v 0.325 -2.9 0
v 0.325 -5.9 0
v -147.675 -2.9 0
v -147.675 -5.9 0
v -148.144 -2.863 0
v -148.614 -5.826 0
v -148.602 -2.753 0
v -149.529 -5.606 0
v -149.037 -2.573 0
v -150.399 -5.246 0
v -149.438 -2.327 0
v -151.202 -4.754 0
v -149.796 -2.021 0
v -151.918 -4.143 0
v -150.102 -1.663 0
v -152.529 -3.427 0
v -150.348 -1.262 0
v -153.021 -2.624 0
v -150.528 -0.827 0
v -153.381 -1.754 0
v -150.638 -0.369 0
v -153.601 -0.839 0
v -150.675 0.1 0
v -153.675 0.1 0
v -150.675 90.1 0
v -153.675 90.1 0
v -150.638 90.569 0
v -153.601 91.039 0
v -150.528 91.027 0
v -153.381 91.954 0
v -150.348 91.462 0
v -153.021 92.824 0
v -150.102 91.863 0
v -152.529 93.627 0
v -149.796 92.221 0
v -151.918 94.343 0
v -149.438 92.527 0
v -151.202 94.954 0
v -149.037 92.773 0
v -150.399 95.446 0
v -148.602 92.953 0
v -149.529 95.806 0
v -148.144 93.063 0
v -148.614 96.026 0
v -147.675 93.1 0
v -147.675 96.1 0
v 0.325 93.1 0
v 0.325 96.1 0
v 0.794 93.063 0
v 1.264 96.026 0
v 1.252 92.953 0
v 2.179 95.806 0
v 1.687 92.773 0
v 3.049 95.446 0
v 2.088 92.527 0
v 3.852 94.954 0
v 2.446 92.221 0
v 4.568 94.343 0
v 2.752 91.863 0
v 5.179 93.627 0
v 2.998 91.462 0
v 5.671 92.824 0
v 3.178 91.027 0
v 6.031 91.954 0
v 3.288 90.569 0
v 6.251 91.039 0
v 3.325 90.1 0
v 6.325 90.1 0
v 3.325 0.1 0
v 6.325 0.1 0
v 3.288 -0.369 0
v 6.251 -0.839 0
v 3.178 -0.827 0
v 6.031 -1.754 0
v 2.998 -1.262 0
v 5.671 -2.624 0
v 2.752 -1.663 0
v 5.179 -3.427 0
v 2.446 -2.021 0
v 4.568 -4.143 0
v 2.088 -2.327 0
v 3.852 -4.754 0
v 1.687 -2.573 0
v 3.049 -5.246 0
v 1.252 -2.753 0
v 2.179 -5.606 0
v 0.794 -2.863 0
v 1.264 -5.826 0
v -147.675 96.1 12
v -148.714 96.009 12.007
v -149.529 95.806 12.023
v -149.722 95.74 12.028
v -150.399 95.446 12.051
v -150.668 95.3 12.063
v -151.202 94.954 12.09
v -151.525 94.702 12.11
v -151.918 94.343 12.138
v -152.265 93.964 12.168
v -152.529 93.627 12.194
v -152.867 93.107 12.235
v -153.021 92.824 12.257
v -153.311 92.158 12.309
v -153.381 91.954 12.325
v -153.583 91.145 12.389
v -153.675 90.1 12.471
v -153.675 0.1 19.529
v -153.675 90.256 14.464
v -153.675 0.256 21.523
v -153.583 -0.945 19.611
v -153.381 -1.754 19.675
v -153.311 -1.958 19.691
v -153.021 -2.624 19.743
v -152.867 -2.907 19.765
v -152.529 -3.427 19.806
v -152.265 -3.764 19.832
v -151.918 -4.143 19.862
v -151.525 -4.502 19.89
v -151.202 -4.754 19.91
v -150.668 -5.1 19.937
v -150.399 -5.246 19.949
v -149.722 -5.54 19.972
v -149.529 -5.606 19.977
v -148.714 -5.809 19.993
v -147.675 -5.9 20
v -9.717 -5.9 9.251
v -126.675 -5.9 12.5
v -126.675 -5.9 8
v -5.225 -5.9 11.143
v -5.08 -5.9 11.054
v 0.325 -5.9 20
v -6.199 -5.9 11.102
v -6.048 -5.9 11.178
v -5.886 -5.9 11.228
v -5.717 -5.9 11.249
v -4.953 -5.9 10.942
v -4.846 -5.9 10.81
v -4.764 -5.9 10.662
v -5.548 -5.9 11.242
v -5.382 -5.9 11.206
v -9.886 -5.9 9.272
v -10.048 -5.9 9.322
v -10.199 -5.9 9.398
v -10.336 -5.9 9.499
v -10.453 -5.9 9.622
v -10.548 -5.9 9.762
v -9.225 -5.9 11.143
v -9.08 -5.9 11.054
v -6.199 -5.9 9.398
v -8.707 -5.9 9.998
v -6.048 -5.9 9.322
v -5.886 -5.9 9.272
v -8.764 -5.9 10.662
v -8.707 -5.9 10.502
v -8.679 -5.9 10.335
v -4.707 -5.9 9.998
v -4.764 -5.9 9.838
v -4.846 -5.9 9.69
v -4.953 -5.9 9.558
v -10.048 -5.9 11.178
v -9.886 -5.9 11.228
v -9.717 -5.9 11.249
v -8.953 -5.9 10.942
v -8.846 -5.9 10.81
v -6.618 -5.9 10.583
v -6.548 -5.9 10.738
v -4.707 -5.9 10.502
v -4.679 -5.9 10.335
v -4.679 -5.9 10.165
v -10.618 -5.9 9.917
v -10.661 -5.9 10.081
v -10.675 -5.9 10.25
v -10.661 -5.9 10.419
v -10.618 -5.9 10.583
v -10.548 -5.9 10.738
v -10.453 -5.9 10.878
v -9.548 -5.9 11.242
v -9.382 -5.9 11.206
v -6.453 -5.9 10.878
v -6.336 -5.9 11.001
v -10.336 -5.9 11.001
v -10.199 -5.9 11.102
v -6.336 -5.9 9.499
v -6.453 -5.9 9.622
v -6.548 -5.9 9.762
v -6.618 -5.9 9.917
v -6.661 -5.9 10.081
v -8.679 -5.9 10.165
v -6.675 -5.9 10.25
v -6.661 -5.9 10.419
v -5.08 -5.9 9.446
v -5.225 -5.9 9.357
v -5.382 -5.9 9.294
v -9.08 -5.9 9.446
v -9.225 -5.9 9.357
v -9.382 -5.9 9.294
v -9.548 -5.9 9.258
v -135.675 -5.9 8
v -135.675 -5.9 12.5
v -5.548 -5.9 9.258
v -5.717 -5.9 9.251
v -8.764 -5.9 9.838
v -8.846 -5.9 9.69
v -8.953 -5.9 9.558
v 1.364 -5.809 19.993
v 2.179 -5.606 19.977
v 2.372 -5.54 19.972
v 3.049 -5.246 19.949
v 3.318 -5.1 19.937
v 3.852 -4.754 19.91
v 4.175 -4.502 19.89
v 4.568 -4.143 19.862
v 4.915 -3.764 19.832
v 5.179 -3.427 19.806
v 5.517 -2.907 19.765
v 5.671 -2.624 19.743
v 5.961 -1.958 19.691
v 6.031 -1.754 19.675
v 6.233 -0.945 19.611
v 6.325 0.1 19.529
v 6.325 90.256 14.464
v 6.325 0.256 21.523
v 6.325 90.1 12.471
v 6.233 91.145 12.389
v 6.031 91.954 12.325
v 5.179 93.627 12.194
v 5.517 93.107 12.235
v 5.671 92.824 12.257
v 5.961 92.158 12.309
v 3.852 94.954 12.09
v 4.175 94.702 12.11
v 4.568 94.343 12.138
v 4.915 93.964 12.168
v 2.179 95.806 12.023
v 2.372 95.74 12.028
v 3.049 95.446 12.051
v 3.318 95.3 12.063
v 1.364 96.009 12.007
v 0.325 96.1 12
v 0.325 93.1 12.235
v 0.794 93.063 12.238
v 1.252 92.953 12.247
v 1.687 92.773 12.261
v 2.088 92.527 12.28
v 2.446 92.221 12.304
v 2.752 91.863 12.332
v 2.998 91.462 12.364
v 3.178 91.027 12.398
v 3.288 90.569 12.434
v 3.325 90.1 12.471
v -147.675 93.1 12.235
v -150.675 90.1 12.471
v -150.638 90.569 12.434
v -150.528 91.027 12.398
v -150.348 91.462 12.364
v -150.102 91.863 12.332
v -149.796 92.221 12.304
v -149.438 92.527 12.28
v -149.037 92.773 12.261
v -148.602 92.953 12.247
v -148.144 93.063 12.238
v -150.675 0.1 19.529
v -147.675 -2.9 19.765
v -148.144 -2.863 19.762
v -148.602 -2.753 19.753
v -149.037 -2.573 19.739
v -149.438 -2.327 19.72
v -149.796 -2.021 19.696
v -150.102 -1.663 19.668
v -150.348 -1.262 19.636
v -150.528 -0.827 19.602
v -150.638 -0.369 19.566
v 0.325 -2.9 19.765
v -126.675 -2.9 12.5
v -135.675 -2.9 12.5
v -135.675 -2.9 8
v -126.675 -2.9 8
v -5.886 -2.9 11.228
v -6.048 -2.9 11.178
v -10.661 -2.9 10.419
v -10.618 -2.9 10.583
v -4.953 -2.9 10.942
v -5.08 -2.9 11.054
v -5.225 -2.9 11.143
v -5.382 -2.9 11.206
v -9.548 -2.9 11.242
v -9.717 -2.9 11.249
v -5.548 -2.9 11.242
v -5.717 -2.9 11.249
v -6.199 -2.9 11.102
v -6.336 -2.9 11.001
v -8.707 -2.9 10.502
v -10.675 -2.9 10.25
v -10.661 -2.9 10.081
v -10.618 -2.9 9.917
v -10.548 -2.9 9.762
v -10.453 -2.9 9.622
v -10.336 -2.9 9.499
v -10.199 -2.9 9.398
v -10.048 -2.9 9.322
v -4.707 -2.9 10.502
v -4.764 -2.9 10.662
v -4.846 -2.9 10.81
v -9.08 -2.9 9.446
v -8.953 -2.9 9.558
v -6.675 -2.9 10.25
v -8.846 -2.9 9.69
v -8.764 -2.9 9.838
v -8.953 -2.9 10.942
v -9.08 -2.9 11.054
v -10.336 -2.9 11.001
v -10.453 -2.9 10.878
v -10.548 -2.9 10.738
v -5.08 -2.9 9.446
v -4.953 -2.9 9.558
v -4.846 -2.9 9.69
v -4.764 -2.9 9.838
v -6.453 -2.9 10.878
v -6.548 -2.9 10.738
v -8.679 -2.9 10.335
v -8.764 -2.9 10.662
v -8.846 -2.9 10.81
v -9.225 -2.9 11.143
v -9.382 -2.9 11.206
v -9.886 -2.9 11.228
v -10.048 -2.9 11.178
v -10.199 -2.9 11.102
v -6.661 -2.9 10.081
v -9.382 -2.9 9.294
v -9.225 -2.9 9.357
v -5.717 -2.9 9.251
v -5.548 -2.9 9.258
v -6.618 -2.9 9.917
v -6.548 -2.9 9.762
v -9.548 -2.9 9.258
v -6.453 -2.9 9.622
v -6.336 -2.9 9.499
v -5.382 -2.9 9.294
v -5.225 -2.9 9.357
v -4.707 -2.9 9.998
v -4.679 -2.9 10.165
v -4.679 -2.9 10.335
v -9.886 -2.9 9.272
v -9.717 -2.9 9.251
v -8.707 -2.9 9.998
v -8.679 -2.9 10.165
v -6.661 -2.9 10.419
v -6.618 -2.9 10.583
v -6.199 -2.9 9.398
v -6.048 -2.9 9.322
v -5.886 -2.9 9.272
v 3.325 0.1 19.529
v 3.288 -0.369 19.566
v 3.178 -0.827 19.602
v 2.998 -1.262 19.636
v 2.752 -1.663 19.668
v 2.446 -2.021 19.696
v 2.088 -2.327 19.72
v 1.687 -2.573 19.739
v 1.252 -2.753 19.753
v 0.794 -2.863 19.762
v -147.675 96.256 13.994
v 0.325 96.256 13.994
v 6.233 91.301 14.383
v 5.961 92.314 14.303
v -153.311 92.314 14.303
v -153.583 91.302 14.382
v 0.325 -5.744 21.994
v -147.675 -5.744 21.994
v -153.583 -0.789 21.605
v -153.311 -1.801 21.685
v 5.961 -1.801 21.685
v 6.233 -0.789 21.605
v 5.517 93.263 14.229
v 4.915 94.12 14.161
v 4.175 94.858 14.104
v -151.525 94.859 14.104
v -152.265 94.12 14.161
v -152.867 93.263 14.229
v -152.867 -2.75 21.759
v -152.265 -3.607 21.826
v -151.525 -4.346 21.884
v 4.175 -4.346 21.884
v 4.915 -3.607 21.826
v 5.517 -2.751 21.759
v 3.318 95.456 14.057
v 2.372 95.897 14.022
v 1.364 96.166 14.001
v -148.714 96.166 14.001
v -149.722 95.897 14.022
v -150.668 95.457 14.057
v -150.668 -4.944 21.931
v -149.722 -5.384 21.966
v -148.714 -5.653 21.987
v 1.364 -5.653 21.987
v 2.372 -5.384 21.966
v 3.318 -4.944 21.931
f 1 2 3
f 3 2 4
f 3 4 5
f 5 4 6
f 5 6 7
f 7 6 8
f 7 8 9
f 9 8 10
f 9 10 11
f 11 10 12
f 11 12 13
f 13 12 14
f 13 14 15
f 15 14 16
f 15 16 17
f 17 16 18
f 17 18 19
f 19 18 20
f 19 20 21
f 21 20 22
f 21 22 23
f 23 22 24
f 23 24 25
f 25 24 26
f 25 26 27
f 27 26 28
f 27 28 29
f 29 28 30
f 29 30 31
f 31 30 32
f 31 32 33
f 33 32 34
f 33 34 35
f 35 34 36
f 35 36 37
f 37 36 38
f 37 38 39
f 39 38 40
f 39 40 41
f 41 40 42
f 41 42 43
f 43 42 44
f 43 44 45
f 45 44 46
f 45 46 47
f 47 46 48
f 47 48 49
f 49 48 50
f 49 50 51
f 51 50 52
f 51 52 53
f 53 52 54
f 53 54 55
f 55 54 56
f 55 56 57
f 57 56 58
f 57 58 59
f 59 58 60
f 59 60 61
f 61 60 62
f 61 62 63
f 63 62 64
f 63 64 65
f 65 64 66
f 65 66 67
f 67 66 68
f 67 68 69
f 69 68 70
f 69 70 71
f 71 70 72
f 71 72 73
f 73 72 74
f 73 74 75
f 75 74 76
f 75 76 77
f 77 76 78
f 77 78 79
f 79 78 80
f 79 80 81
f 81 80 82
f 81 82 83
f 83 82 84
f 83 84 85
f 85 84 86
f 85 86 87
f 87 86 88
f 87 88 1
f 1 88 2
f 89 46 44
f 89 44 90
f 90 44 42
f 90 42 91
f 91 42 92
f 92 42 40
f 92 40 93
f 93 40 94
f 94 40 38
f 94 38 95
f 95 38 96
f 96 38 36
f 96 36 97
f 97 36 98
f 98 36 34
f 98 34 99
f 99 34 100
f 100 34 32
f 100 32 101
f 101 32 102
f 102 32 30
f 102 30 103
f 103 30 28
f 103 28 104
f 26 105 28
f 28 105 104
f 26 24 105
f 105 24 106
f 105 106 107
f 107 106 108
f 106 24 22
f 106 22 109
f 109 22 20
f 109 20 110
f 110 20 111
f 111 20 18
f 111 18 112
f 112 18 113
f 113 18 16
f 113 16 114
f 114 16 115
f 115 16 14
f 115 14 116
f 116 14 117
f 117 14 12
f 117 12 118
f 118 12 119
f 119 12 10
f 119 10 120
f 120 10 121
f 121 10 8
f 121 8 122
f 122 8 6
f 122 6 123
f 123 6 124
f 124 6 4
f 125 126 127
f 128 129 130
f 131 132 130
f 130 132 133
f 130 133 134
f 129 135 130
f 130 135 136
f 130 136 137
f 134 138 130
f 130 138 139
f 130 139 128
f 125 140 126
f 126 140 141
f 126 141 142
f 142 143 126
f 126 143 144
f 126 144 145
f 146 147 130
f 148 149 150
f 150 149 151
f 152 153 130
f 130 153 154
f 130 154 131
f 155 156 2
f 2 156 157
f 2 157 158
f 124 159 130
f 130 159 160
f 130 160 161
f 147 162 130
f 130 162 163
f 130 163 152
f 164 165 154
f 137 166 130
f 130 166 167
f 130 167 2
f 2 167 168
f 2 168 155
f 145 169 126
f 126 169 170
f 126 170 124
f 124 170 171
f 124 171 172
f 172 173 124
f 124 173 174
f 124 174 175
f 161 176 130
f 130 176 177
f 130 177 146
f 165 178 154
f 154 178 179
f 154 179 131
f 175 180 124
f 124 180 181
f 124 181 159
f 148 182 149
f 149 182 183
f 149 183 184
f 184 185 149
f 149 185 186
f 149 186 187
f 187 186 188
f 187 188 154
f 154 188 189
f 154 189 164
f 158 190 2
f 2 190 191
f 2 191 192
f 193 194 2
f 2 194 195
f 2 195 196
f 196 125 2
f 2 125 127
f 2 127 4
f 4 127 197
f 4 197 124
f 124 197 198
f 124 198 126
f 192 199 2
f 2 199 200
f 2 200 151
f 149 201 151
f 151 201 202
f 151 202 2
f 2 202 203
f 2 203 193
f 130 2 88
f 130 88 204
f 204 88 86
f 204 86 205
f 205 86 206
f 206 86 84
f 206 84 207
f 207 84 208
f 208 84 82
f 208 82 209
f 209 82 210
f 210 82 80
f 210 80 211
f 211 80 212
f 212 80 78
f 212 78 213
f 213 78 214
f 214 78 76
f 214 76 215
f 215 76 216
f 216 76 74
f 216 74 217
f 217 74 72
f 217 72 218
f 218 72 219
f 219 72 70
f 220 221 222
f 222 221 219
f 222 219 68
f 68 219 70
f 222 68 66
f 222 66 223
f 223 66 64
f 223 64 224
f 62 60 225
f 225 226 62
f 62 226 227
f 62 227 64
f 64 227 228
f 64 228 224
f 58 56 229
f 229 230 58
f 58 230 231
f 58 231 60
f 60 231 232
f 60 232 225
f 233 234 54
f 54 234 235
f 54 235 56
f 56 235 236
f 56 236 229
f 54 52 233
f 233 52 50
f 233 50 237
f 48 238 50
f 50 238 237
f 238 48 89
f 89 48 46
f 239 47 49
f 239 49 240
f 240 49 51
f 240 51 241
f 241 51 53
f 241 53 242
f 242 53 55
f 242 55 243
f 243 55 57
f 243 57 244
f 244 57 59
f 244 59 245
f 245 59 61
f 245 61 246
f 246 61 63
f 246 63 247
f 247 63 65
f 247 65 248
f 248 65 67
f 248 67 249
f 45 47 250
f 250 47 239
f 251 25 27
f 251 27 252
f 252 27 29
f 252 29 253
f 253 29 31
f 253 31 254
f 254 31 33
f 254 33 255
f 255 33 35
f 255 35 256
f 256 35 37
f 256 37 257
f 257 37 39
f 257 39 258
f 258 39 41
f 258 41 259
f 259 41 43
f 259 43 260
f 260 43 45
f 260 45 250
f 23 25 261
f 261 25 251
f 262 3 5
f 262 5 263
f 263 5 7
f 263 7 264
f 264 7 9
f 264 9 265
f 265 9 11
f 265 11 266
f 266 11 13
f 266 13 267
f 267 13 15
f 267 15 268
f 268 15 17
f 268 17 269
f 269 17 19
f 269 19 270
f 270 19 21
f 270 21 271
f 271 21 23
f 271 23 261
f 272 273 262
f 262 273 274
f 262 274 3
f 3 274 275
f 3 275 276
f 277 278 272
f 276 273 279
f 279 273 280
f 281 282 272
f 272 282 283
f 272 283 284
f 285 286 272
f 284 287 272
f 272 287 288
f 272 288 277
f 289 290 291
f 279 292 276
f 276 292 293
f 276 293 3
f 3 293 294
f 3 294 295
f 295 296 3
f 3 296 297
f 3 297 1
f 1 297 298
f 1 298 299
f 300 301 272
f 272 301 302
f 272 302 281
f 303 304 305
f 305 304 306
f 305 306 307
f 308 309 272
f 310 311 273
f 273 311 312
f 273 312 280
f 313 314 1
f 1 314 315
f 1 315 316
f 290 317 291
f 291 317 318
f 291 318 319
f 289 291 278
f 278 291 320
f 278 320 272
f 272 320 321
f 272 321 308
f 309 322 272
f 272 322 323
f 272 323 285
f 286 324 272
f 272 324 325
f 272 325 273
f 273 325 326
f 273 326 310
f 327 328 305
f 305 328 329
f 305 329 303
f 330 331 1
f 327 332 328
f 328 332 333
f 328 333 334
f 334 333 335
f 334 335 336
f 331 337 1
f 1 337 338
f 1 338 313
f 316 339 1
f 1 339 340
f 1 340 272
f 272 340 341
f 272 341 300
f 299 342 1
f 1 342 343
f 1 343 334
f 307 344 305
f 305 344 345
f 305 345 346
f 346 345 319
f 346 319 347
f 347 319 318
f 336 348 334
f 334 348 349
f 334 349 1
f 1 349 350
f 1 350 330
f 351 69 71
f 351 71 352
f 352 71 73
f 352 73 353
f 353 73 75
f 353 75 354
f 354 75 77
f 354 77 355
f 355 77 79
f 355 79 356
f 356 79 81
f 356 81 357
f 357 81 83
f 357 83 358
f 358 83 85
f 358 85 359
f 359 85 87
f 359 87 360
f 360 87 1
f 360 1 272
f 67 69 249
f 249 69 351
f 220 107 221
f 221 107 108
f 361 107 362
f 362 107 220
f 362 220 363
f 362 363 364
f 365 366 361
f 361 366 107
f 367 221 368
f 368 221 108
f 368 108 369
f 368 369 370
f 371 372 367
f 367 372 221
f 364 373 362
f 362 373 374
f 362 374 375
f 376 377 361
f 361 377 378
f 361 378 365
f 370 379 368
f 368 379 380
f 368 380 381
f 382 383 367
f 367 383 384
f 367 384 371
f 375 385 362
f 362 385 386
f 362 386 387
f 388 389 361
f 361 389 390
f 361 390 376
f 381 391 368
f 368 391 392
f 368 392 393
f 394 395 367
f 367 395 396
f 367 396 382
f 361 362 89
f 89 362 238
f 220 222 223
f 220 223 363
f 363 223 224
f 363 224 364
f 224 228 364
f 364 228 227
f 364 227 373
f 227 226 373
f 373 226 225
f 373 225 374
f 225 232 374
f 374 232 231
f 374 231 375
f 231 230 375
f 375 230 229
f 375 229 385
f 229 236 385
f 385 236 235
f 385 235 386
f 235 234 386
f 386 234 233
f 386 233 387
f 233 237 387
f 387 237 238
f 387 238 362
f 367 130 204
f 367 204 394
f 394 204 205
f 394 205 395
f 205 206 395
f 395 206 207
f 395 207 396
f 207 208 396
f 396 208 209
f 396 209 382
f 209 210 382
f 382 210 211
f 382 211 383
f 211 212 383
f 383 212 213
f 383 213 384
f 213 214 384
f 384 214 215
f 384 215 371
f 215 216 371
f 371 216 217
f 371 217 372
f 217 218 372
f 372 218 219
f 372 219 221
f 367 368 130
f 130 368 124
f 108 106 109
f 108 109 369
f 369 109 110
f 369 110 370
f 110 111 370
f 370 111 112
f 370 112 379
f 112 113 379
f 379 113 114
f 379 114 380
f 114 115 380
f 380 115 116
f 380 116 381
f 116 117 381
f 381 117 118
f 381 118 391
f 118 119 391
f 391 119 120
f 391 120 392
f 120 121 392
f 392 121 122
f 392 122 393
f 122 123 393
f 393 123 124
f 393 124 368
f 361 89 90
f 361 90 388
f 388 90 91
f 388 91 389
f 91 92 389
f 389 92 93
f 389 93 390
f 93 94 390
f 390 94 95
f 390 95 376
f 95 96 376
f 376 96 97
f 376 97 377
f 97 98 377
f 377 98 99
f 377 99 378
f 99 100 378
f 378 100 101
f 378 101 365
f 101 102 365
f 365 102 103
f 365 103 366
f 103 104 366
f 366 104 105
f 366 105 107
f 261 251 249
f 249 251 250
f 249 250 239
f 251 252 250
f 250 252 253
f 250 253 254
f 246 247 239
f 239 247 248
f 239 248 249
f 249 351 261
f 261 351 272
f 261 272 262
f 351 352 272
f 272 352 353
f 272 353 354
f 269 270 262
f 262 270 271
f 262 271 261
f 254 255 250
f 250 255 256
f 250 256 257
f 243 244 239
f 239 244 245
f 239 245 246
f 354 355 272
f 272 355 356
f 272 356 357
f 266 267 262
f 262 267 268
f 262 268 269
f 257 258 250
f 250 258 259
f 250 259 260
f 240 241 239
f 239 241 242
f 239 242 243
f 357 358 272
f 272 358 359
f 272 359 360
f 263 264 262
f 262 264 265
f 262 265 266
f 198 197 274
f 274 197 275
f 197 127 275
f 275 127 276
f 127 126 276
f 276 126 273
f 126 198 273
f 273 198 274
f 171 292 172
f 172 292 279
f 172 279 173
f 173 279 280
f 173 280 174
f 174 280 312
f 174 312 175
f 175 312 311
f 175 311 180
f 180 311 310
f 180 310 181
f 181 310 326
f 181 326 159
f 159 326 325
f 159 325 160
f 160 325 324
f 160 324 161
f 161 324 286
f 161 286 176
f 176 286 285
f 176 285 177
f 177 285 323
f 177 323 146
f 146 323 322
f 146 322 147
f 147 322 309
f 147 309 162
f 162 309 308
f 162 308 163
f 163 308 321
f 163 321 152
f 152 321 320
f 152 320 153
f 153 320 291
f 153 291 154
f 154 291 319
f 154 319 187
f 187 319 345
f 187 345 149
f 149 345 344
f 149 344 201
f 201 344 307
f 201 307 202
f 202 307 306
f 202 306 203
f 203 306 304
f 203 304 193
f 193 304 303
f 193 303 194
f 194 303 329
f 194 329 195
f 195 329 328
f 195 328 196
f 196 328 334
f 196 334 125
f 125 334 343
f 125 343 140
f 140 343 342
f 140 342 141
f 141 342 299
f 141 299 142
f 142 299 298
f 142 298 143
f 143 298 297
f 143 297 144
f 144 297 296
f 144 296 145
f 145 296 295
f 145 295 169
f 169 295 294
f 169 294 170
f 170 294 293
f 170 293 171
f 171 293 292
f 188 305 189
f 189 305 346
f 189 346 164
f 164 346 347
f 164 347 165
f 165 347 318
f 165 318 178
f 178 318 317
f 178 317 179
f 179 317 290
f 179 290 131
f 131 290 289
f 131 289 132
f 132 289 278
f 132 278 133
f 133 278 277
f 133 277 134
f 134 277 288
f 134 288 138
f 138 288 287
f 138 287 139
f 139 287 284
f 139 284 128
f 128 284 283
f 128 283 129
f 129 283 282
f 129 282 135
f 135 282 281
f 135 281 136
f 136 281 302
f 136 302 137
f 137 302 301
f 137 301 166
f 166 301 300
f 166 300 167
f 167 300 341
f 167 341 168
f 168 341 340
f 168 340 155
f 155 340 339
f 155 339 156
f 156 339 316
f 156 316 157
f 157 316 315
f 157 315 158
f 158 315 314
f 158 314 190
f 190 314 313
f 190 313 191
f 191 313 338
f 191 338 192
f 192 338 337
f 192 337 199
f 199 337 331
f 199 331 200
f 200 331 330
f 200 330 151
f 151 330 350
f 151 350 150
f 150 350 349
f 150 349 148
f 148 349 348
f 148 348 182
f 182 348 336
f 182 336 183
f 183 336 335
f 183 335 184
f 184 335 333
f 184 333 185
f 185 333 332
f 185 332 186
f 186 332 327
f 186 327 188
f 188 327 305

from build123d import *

# Parameters (mm, degrees)
BOSS_EXTRUDE1_DEPTH = 20
CUT_EXTRUDE1_DEPTH  = 188.710441905
BOSS_EXTRUDE2_DEPTH = 2
SKETCH4_W           = 9
SKETCH4_H           = 4.5
CUT_EXTRUDE2_DEPTH  = 185.20565812
SKETCH5_R           = 1
CUT_EXTRUDE3_DEPTH  = 185.20565812


with BuildPart() as part:
    # Sketch1 → Boss-Extrude1 (new body)
    with BuildSketch(Plane.XY):
        with BuildLine():
            Line((-153.675, 0.1), (-153.675, 90.1))
            ThreePointArc((-153.675, 90.1), (-151.917640687, 94.342640687), (-147.675, 96.1))
            Line((-147.675, 96.1), (0.325, 96.1))
            ThreePointArc((0.325, 96.1), (4.567640687, 94.342640687), (6.325, 90.1))
            Line((6.325, 90.1), (6.325, 0.1))
            ThreePointArc((6.325, 0.1), (4.567640687, -4.142640687), (0.325, -5.9))
            Line((0.325, -5.9), (-147.675, -5.9))
            ThreePointArc((-147.675, -5.9), (-151.917640687, -4.142640687), (-153.675, 0.1))
        make_face()
        with BuildLine():
            Line((3.325, 90.1), (3.325, 0.1))
            ThreePointArc((3.325, 0.1), (2.446320344, -2.021320344), (0.325, -2.9))
            Line((0.325, -2.9), (-147.675, -2.9))
            ThreePointArc((-147.675, -2.9), (-149.796320344, -2.021320344), (-150.675, 0.1))
            Line((-150.675, 0.1), (-150.675, 90.1))
            ThreePointArc((-150.675, 90.1), (-149.796320344, 92.221320344), (-147.675, 93.1))
            Line((-147.675, 93.1), (0.325, 93.1))
            ThreePointArc((0.325, 93.1), (2.446320344, 92.221320344), (3.325, 90.1))
        make_face(mode=Mode.SUBTRACT)
    extrude(amount=BOSS_EXTRUDE1_DEPTH)

    # Sketch2 → Cut-Extrude1 (cut, through all)
    with BuildSketch(Plane(origin=(6.325, 0, 0), x_dir=(0, 0, -1), z_dir=(1, 0, 0))):
        Polygon((-20, 96.1), (-12, 96.1), (-20, -5.9), align=None)
    extrude(amount=-CUT_EXTRUDE1_DEPTH, mode=Mode.SUBTRACT)

    # Sketch3 → Boss-Extrude2 (add)
    with BuildSketch(Plane(origin=(0, 1.522965227, 19.417806649), x_dir=(1, 0, 0), z_dir=(0, 0.0781912453186315, 0.9969383778125516))):
        with BuildLine():
            Line((-153.675, 88.849057017), (-153.675, -1.427335188))
            add(Edge.make_bspline(
                [(-153.675, -1.427335188), (-153.675, -7.445761335), (-147.675, -7.445761335)],
                knots=[1.570796327, 1.570796327, 1.570796327, 3.141592654, 3.141592654, 3.141592654], degree=2, weights=[1, 0.707106781, 1]))
            Line((-147.675, -7.445761335), (0.325, -7.445761335))
            add(Edge.make_bspline(
                [(0.325, -7.445761335), (6.325, -7.445761335), (6.325, -1.427335188)],
                knots=[3.141592654, 3.141592654, 3.141592654, 4.71238898, 4.71238898, 4.71238898], degree=2, weights=[1, 0.707106781, 1]))
            Line((6.325, -1.427335188), (6.325, 88.849057017))
            add(Edge.make_bspline(
                [(6.325, 88.849057017), (6.325, 94.867483164), (0.325, 94.867483164)],
                knots=[4.71238898, 4.71238898, 4.71238898, 6.283185307, 6.283185307, 6.283185307], degree=2, weights=[1, 0.707106781, 1]))
            Line((0.325, 94.867483164), (-147.675, 94.867483164))
            add(Edge.make_bspline(
                [(-147.675, 94.867483164), (-153.675, 94.867483164), (-153.675, 88.849057017)],
                knots=[0, 0, 0, 1.570796327, 1.570796327, 1.570796327], degree=2, weights=[1, 0.707106781, 1]))
        make_face()
    extrude(amount=BOSS_EXTRUDE2_DEPTH)

    # Sketch4 → Cut-Extrude2 (cut, through all)
    with BuildSketch(Plane(origin=(0, -2.9, 0), x_dir=(1, 0, 0), z_dir=(0, 1, 0))):
        with Locations((-131.175, -10.25)):
            Rectangle(SKETCH4_W, SKETCH4_H)
    extrude(amount=-CUT_EXTRUDE2_DEPTH, mode=Mode.SUBTRACT)

    # Sketch5 → Cut-Extrude3 (cut, through all)
    with BuildSketch(Plane(origin=(0, -2.9, 0), x_dir=(1, 0, 0), z_dir=(0, 1, 0))):
        with Locations(Location((-5.675, -10.25, 0), (0, 0, 180))):
            Circle(SKETCH5_R)
        with Locations(Location((-9.675, -10.25, 0), (0, 0, 180))):
            Circle(SKETCH5_R)
    extrude(amount=-CUT_EXTRUDE3_DEPTH, mode=Mode.SUBTRACT)


solid = part.part
